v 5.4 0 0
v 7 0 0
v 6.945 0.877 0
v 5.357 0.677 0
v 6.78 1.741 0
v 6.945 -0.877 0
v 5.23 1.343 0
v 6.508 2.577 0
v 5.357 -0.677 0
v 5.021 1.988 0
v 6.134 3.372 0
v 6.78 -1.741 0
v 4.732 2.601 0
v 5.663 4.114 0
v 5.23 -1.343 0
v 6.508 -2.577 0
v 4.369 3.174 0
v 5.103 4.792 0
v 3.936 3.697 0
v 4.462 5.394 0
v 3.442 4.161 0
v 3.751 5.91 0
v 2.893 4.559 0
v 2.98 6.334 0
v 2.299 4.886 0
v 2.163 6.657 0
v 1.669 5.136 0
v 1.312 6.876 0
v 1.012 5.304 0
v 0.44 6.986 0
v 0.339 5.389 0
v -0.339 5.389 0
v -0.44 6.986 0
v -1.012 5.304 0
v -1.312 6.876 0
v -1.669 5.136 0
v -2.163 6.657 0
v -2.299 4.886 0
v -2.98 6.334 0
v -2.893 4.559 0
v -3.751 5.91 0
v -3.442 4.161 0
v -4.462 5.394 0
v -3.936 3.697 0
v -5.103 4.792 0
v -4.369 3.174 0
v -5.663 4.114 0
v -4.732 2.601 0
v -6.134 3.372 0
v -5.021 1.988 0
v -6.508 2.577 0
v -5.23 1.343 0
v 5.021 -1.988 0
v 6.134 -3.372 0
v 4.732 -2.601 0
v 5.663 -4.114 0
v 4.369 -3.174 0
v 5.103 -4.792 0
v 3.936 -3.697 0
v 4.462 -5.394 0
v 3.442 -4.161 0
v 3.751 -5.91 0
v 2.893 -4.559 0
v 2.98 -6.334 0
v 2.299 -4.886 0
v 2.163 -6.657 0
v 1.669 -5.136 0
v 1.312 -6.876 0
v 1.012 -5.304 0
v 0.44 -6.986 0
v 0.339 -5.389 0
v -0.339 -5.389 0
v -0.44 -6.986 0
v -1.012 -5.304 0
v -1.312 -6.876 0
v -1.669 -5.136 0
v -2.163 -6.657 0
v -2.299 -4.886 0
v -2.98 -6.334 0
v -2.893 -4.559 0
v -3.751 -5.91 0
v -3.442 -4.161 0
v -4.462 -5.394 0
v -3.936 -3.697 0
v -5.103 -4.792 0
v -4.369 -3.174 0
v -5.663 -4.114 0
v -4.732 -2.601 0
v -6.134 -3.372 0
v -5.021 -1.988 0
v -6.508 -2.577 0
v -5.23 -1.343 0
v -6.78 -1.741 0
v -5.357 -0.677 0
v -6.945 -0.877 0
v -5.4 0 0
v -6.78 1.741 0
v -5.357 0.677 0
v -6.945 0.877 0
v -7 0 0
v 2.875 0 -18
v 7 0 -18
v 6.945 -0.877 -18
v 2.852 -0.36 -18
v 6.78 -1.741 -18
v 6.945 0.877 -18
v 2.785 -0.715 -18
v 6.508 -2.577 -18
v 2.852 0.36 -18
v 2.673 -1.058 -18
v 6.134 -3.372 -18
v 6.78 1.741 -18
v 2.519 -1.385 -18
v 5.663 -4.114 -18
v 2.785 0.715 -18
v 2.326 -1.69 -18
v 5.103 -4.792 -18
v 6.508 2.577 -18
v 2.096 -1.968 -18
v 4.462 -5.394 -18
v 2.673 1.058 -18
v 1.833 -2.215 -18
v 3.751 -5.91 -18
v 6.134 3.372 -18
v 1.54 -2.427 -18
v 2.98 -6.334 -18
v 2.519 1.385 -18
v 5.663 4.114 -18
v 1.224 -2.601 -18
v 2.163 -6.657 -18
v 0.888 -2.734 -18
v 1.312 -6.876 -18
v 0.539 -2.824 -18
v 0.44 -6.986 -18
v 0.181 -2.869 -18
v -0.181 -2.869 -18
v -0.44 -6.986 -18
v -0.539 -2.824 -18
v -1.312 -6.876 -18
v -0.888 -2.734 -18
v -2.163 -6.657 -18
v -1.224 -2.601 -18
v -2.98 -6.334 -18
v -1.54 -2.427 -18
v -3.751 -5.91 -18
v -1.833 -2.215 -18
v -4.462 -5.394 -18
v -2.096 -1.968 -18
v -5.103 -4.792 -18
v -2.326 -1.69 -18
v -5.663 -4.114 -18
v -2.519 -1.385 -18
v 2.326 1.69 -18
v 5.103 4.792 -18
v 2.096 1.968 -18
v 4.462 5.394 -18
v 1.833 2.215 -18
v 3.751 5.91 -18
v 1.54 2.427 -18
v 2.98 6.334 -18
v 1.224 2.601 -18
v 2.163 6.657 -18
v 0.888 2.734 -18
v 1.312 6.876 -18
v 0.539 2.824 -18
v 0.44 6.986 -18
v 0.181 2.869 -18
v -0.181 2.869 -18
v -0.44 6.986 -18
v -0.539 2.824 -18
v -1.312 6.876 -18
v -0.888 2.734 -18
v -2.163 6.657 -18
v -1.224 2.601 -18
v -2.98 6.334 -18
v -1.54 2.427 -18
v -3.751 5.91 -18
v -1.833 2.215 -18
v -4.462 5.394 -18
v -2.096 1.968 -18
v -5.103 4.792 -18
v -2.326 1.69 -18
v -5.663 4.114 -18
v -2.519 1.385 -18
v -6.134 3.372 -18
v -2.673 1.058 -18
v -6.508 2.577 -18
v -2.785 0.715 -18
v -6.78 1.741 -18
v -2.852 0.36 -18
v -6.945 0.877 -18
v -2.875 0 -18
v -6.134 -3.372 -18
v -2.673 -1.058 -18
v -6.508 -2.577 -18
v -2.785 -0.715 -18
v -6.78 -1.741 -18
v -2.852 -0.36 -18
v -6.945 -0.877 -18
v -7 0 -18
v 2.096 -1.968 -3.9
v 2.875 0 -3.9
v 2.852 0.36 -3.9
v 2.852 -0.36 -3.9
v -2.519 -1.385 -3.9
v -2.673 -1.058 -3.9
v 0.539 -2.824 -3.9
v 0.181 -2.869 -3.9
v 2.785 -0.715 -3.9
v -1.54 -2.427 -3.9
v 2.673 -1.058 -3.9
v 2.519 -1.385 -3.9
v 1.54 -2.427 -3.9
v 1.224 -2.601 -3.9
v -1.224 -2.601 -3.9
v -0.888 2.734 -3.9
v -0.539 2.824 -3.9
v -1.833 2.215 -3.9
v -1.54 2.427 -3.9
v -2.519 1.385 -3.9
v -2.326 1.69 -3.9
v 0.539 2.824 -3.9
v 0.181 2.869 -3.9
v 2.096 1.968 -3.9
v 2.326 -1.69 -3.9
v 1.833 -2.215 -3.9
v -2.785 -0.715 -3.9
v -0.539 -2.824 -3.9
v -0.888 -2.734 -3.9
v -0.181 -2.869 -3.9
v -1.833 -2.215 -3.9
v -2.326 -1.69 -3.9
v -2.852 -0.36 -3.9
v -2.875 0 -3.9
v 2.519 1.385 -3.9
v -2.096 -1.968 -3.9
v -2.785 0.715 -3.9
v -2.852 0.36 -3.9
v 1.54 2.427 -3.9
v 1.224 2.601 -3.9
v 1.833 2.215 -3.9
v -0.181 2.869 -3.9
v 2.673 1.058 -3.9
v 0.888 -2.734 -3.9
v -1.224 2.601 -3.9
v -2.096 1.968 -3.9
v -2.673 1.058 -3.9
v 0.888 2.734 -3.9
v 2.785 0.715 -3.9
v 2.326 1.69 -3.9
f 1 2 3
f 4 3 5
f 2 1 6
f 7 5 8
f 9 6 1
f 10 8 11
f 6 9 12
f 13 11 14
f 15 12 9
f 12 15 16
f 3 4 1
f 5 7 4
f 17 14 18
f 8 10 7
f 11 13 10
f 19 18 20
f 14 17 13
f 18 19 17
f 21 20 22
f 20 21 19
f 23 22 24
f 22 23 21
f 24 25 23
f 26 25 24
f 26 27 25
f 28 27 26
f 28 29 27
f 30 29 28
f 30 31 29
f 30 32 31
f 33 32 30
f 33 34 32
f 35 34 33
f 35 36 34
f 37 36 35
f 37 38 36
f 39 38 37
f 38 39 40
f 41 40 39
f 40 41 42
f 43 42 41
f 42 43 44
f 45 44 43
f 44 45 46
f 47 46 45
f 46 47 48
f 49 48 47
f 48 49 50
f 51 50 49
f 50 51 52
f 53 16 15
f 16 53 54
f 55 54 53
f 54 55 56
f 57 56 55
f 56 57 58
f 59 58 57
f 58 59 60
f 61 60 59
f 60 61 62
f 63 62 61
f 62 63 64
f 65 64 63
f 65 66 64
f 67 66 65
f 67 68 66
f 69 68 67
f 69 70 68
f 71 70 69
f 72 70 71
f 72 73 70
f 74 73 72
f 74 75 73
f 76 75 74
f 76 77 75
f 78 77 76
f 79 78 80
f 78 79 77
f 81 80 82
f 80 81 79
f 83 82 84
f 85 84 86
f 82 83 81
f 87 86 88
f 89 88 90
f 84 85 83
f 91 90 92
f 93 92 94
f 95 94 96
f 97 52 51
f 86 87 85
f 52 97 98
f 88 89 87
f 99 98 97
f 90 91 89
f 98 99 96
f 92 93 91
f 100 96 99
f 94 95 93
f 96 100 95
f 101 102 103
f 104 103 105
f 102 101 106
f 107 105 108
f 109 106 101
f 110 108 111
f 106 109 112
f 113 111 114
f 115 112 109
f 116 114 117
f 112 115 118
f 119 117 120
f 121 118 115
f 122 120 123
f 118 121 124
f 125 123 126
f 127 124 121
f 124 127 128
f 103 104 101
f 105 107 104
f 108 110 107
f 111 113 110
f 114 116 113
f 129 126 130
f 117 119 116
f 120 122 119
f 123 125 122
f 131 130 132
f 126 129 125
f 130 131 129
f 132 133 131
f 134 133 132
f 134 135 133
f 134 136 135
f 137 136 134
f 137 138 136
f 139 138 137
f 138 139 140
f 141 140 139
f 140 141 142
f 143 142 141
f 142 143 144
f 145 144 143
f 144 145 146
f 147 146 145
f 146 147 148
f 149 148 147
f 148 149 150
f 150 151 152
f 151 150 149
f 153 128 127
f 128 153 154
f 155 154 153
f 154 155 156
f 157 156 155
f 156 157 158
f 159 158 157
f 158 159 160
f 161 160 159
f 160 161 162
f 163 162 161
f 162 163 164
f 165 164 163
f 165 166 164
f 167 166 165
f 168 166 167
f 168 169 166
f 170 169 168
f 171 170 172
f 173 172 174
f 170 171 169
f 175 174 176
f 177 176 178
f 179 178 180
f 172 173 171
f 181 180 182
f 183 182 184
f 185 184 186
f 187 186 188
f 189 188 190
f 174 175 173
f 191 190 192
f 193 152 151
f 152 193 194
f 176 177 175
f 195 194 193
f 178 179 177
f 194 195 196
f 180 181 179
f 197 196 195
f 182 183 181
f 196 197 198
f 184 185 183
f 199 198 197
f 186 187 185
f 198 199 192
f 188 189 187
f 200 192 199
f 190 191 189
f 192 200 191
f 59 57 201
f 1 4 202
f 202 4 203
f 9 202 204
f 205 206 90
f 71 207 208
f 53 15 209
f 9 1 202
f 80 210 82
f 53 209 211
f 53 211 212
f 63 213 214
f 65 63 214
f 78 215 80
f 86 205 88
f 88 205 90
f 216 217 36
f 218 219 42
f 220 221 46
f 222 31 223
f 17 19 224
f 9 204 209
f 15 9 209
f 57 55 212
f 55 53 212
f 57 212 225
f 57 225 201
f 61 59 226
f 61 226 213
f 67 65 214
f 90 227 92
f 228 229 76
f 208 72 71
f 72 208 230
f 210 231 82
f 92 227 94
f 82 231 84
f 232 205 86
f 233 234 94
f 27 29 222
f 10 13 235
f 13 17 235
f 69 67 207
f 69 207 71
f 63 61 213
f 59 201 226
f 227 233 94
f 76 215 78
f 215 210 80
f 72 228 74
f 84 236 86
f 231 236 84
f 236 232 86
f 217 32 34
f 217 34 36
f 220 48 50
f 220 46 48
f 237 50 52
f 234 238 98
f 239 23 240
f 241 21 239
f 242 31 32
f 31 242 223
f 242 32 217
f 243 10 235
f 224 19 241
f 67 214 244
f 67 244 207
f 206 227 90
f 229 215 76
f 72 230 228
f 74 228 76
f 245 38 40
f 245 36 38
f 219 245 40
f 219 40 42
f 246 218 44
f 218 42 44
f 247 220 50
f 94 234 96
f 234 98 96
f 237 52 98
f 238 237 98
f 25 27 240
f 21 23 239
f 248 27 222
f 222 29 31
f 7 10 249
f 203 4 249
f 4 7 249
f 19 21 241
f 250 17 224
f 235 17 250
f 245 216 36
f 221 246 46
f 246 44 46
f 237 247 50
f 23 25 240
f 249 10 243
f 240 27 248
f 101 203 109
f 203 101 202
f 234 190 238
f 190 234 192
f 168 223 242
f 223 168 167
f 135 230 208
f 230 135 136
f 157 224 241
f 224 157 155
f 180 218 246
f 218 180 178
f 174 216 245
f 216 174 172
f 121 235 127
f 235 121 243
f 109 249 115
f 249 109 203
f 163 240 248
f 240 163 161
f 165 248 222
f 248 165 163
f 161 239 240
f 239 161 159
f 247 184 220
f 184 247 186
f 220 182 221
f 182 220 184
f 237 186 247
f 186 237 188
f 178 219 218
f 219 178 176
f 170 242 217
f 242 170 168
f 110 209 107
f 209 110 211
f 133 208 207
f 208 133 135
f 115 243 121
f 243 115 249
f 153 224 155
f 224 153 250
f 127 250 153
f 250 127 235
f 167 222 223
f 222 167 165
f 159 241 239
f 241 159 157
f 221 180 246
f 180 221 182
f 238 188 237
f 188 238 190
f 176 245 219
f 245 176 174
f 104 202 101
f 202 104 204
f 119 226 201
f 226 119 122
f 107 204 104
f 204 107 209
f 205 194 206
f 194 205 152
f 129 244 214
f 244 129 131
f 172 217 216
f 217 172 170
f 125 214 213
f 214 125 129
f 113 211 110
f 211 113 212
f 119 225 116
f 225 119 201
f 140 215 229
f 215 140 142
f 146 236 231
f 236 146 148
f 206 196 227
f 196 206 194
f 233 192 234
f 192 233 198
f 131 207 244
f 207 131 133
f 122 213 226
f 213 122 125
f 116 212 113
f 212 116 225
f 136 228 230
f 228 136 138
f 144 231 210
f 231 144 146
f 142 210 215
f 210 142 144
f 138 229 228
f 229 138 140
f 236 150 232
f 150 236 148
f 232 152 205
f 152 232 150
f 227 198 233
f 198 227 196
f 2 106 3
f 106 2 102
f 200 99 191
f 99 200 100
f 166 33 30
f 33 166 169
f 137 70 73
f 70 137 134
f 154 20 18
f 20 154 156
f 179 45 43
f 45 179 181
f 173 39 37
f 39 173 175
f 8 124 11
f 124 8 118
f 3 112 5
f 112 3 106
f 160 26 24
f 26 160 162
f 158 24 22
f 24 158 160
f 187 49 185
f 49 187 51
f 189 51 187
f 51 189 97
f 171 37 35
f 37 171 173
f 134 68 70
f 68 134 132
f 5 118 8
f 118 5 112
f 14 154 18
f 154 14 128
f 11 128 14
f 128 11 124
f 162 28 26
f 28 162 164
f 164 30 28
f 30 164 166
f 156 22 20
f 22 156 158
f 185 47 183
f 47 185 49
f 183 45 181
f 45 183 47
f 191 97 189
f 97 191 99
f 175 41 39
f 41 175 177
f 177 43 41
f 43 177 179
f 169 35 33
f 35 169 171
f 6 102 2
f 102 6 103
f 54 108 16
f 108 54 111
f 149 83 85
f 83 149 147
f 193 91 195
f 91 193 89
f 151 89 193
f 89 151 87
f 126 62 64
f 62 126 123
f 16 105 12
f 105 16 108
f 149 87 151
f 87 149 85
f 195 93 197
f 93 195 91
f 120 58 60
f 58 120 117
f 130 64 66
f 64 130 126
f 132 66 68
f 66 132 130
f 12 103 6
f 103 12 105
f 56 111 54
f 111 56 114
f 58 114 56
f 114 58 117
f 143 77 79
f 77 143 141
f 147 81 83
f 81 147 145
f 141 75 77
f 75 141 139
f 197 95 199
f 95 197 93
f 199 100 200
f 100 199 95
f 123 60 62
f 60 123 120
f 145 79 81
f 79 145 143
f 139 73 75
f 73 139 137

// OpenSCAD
$fn = 50;


difference() {
	union() {
		translate(v = [0, 0, -18.0000000000]) {
			cylinder(h = 18, r = 7.0000000000);
		}
		cylinder(h = 0, r = 10.0000000000);
	}
	union() {
		translate(v = [0, 0, 0]) {
			rotate(a = [0, 0, 0]) {
				difference() {
					union() {
						#translate(v = [0, 0, -18.0000000000]) {
							cylinder(h = 18, r = 2.6000000000);
						}
						#translate(v = [0, 0, -3.9000000000]) {
							cylinder(h = 3.9000000000, r = 7.0000000000, r1 = 2.8750000000, r2 = 5.4000000000);
						}
						#translate(v = [0, 0, -18.0000000000]) {
							cylinder(h = 18, r = 2.8750000000);
						}
						#translate(v = [0, 0, -18.0000000000]) {
							cylinder(h = 18, r = 2.6000000000);
						}
					}
					union();
				}
			}
		}
	}
}
